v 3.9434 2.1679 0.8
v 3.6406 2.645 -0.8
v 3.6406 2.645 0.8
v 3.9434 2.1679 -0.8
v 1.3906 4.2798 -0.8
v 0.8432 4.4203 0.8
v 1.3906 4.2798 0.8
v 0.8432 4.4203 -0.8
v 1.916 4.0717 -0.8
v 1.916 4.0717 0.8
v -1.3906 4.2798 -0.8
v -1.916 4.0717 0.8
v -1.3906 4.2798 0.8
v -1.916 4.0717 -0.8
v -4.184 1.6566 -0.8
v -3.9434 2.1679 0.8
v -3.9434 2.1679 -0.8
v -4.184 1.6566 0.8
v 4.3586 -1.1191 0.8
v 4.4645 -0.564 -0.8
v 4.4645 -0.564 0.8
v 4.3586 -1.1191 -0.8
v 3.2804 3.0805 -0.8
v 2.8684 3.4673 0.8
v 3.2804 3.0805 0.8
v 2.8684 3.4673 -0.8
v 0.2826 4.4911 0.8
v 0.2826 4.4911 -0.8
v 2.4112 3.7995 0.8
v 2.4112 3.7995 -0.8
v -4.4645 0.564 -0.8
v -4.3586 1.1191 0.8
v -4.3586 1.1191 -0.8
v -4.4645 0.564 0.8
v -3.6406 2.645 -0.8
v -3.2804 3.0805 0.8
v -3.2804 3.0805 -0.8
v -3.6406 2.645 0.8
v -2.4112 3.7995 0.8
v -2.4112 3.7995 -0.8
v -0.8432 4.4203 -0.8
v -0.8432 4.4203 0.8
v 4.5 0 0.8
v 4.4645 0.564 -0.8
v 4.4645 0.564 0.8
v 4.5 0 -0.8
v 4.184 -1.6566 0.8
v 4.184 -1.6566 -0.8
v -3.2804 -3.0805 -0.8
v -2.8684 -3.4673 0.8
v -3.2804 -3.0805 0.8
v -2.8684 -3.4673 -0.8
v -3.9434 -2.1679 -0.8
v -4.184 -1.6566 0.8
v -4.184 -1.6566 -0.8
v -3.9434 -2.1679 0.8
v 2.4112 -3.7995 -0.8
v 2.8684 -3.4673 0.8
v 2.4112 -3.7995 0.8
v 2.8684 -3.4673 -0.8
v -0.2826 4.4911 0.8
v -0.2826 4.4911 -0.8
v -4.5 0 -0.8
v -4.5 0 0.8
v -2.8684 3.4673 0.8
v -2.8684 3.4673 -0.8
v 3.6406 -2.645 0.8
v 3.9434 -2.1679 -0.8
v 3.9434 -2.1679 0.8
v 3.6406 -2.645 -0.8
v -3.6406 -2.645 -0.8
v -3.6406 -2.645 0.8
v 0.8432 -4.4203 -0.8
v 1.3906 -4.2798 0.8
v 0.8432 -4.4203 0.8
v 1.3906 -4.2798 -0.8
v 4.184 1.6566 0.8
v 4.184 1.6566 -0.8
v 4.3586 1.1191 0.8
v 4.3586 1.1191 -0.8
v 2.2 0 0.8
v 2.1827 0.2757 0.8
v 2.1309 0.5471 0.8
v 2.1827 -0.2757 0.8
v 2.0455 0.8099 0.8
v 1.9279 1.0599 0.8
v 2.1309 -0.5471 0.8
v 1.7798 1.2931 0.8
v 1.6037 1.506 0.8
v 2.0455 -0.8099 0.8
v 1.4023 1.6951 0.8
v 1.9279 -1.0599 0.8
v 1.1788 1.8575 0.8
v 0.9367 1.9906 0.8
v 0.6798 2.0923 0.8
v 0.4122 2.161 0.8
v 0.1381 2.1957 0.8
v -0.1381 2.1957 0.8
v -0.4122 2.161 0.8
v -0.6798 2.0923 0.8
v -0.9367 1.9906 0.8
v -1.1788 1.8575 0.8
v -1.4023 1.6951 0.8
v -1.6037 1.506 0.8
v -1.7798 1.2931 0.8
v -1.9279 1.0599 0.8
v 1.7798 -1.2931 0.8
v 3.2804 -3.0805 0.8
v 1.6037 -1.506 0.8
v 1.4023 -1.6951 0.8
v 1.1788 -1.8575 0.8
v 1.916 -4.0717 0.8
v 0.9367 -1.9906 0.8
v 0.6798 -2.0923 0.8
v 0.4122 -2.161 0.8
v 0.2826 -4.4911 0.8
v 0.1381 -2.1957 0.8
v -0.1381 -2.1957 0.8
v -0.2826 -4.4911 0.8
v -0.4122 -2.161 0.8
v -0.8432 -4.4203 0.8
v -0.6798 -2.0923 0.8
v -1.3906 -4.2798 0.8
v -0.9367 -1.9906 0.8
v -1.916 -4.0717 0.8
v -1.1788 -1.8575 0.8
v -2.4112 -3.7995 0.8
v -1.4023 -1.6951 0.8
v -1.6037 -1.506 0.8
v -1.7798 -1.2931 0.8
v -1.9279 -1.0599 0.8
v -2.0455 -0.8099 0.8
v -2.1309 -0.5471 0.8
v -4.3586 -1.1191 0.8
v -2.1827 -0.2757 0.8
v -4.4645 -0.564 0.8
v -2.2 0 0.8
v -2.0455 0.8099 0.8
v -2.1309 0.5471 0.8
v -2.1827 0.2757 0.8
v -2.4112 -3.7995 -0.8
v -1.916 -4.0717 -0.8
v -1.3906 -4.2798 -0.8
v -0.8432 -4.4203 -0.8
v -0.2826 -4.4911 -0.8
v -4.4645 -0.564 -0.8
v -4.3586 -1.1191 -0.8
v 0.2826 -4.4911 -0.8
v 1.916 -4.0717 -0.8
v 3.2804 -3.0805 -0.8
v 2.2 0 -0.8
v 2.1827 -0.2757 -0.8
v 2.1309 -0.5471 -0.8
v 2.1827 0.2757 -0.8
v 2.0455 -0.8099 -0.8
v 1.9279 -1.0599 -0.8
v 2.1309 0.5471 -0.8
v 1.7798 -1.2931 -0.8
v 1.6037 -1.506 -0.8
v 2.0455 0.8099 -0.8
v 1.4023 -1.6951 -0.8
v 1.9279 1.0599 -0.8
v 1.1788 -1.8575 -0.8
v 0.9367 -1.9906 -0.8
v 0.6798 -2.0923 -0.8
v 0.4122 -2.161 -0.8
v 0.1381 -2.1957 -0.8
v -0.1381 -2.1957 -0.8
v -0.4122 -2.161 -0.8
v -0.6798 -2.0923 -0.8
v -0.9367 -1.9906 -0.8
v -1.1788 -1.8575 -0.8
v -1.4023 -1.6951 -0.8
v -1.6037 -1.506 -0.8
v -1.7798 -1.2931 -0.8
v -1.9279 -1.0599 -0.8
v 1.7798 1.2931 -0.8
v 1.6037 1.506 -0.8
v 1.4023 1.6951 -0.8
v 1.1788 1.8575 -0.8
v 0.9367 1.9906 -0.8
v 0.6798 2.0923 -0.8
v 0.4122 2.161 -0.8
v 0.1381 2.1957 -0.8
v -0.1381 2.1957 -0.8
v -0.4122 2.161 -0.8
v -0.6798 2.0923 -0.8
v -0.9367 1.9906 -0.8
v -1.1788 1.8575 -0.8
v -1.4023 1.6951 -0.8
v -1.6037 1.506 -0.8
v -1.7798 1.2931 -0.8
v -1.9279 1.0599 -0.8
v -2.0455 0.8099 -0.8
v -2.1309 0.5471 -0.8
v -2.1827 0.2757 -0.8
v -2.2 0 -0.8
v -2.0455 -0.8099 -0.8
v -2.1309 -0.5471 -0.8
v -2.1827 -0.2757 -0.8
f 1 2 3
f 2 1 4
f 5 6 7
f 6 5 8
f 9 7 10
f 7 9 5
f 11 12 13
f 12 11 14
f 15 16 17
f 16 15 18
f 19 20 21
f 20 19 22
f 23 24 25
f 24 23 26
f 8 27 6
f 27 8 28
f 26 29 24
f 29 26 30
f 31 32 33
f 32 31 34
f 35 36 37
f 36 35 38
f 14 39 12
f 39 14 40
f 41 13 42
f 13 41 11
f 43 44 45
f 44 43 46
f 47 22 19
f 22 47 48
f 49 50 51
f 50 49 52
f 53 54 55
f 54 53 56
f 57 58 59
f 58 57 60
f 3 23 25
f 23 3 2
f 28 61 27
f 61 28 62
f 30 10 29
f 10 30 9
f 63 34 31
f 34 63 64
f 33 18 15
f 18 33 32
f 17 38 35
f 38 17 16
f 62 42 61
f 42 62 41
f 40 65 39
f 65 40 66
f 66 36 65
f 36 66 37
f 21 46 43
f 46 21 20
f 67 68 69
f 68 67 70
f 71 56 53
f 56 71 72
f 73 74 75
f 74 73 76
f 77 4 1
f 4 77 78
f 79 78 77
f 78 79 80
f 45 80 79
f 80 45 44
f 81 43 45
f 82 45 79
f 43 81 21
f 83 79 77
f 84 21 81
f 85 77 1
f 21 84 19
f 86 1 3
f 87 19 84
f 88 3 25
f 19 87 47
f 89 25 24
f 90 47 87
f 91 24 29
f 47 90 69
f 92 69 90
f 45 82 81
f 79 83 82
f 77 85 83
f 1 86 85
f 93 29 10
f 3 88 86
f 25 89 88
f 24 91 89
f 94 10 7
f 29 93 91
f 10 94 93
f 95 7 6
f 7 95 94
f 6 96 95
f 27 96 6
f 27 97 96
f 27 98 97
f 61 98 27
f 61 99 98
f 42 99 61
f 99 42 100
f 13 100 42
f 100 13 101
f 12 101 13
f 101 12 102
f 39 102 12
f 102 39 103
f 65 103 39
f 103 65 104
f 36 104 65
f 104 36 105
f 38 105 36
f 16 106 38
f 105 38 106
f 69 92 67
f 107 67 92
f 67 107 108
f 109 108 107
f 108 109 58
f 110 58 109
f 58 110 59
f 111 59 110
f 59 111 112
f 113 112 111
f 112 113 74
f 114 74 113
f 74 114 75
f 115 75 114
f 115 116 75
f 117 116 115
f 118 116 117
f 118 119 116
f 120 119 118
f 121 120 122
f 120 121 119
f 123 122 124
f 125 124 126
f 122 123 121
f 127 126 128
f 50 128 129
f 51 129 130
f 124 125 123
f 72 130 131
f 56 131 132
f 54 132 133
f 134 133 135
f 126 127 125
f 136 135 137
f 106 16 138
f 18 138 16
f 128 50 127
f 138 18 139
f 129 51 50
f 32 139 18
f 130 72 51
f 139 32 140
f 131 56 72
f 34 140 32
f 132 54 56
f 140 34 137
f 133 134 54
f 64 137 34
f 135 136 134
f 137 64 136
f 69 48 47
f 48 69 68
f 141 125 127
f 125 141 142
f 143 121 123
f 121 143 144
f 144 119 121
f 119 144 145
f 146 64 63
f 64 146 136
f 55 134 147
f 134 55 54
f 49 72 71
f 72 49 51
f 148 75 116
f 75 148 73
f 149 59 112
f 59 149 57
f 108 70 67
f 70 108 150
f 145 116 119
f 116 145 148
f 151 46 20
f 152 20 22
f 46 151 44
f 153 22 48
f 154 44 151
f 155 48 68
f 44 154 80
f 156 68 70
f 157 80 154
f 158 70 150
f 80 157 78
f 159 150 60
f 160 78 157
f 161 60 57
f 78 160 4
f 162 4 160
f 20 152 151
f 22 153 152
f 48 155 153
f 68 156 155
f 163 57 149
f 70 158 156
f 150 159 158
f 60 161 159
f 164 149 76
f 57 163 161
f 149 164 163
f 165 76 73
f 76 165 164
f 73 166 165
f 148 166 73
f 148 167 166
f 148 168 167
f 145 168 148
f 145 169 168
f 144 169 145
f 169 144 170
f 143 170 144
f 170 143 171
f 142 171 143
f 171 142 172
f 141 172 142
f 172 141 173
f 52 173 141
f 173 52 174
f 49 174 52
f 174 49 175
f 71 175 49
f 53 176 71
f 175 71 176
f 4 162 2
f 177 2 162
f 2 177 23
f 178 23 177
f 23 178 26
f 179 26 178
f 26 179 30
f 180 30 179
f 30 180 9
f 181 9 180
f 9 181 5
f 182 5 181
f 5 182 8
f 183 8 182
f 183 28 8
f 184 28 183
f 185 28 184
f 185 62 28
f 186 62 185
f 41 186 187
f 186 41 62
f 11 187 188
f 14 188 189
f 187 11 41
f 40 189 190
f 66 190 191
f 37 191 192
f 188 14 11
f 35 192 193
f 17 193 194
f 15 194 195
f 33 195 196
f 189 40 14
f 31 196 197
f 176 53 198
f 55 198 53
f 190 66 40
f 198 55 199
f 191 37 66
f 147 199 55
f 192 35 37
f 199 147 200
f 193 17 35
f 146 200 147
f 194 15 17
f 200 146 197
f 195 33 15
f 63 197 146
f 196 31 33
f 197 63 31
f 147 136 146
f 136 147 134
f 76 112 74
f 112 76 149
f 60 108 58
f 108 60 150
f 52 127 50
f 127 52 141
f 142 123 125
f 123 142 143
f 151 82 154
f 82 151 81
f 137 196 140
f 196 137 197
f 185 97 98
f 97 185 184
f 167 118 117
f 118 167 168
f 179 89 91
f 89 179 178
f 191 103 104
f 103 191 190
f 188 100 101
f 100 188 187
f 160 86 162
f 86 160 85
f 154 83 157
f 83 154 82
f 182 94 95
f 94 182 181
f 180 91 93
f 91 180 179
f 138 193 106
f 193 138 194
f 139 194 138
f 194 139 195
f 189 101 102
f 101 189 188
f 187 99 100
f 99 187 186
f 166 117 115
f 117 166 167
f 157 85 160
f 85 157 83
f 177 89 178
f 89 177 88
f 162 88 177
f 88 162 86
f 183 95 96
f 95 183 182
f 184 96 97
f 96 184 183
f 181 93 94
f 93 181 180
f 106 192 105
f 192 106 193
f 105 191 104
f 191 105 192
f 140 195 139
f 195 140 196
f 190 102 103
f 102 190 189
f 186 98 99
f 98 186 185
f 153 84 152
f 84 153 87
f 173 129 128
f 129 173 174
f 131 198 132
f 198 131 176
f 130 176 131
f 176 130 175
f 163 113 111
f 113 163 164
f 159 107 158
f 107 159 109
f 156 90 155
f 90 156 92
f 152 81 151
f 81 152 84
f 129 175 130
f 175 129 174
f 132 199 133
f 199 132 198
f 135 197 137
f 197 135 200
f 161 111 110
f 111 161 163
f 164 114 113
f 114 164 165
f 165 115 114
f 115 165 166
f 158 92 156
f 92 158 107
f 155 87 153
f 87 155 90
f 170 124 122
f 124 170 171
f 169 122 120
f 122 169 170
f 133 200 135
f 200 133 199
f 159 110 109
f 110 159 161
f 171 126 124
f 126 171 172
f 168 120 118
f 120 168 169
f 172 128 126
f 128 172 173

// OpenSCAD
$fn=50;

difference() {
  cylinder (d=9, h=1.6, center=true);
  cylinder (d=4.4, h=1.7, center=true);
}
